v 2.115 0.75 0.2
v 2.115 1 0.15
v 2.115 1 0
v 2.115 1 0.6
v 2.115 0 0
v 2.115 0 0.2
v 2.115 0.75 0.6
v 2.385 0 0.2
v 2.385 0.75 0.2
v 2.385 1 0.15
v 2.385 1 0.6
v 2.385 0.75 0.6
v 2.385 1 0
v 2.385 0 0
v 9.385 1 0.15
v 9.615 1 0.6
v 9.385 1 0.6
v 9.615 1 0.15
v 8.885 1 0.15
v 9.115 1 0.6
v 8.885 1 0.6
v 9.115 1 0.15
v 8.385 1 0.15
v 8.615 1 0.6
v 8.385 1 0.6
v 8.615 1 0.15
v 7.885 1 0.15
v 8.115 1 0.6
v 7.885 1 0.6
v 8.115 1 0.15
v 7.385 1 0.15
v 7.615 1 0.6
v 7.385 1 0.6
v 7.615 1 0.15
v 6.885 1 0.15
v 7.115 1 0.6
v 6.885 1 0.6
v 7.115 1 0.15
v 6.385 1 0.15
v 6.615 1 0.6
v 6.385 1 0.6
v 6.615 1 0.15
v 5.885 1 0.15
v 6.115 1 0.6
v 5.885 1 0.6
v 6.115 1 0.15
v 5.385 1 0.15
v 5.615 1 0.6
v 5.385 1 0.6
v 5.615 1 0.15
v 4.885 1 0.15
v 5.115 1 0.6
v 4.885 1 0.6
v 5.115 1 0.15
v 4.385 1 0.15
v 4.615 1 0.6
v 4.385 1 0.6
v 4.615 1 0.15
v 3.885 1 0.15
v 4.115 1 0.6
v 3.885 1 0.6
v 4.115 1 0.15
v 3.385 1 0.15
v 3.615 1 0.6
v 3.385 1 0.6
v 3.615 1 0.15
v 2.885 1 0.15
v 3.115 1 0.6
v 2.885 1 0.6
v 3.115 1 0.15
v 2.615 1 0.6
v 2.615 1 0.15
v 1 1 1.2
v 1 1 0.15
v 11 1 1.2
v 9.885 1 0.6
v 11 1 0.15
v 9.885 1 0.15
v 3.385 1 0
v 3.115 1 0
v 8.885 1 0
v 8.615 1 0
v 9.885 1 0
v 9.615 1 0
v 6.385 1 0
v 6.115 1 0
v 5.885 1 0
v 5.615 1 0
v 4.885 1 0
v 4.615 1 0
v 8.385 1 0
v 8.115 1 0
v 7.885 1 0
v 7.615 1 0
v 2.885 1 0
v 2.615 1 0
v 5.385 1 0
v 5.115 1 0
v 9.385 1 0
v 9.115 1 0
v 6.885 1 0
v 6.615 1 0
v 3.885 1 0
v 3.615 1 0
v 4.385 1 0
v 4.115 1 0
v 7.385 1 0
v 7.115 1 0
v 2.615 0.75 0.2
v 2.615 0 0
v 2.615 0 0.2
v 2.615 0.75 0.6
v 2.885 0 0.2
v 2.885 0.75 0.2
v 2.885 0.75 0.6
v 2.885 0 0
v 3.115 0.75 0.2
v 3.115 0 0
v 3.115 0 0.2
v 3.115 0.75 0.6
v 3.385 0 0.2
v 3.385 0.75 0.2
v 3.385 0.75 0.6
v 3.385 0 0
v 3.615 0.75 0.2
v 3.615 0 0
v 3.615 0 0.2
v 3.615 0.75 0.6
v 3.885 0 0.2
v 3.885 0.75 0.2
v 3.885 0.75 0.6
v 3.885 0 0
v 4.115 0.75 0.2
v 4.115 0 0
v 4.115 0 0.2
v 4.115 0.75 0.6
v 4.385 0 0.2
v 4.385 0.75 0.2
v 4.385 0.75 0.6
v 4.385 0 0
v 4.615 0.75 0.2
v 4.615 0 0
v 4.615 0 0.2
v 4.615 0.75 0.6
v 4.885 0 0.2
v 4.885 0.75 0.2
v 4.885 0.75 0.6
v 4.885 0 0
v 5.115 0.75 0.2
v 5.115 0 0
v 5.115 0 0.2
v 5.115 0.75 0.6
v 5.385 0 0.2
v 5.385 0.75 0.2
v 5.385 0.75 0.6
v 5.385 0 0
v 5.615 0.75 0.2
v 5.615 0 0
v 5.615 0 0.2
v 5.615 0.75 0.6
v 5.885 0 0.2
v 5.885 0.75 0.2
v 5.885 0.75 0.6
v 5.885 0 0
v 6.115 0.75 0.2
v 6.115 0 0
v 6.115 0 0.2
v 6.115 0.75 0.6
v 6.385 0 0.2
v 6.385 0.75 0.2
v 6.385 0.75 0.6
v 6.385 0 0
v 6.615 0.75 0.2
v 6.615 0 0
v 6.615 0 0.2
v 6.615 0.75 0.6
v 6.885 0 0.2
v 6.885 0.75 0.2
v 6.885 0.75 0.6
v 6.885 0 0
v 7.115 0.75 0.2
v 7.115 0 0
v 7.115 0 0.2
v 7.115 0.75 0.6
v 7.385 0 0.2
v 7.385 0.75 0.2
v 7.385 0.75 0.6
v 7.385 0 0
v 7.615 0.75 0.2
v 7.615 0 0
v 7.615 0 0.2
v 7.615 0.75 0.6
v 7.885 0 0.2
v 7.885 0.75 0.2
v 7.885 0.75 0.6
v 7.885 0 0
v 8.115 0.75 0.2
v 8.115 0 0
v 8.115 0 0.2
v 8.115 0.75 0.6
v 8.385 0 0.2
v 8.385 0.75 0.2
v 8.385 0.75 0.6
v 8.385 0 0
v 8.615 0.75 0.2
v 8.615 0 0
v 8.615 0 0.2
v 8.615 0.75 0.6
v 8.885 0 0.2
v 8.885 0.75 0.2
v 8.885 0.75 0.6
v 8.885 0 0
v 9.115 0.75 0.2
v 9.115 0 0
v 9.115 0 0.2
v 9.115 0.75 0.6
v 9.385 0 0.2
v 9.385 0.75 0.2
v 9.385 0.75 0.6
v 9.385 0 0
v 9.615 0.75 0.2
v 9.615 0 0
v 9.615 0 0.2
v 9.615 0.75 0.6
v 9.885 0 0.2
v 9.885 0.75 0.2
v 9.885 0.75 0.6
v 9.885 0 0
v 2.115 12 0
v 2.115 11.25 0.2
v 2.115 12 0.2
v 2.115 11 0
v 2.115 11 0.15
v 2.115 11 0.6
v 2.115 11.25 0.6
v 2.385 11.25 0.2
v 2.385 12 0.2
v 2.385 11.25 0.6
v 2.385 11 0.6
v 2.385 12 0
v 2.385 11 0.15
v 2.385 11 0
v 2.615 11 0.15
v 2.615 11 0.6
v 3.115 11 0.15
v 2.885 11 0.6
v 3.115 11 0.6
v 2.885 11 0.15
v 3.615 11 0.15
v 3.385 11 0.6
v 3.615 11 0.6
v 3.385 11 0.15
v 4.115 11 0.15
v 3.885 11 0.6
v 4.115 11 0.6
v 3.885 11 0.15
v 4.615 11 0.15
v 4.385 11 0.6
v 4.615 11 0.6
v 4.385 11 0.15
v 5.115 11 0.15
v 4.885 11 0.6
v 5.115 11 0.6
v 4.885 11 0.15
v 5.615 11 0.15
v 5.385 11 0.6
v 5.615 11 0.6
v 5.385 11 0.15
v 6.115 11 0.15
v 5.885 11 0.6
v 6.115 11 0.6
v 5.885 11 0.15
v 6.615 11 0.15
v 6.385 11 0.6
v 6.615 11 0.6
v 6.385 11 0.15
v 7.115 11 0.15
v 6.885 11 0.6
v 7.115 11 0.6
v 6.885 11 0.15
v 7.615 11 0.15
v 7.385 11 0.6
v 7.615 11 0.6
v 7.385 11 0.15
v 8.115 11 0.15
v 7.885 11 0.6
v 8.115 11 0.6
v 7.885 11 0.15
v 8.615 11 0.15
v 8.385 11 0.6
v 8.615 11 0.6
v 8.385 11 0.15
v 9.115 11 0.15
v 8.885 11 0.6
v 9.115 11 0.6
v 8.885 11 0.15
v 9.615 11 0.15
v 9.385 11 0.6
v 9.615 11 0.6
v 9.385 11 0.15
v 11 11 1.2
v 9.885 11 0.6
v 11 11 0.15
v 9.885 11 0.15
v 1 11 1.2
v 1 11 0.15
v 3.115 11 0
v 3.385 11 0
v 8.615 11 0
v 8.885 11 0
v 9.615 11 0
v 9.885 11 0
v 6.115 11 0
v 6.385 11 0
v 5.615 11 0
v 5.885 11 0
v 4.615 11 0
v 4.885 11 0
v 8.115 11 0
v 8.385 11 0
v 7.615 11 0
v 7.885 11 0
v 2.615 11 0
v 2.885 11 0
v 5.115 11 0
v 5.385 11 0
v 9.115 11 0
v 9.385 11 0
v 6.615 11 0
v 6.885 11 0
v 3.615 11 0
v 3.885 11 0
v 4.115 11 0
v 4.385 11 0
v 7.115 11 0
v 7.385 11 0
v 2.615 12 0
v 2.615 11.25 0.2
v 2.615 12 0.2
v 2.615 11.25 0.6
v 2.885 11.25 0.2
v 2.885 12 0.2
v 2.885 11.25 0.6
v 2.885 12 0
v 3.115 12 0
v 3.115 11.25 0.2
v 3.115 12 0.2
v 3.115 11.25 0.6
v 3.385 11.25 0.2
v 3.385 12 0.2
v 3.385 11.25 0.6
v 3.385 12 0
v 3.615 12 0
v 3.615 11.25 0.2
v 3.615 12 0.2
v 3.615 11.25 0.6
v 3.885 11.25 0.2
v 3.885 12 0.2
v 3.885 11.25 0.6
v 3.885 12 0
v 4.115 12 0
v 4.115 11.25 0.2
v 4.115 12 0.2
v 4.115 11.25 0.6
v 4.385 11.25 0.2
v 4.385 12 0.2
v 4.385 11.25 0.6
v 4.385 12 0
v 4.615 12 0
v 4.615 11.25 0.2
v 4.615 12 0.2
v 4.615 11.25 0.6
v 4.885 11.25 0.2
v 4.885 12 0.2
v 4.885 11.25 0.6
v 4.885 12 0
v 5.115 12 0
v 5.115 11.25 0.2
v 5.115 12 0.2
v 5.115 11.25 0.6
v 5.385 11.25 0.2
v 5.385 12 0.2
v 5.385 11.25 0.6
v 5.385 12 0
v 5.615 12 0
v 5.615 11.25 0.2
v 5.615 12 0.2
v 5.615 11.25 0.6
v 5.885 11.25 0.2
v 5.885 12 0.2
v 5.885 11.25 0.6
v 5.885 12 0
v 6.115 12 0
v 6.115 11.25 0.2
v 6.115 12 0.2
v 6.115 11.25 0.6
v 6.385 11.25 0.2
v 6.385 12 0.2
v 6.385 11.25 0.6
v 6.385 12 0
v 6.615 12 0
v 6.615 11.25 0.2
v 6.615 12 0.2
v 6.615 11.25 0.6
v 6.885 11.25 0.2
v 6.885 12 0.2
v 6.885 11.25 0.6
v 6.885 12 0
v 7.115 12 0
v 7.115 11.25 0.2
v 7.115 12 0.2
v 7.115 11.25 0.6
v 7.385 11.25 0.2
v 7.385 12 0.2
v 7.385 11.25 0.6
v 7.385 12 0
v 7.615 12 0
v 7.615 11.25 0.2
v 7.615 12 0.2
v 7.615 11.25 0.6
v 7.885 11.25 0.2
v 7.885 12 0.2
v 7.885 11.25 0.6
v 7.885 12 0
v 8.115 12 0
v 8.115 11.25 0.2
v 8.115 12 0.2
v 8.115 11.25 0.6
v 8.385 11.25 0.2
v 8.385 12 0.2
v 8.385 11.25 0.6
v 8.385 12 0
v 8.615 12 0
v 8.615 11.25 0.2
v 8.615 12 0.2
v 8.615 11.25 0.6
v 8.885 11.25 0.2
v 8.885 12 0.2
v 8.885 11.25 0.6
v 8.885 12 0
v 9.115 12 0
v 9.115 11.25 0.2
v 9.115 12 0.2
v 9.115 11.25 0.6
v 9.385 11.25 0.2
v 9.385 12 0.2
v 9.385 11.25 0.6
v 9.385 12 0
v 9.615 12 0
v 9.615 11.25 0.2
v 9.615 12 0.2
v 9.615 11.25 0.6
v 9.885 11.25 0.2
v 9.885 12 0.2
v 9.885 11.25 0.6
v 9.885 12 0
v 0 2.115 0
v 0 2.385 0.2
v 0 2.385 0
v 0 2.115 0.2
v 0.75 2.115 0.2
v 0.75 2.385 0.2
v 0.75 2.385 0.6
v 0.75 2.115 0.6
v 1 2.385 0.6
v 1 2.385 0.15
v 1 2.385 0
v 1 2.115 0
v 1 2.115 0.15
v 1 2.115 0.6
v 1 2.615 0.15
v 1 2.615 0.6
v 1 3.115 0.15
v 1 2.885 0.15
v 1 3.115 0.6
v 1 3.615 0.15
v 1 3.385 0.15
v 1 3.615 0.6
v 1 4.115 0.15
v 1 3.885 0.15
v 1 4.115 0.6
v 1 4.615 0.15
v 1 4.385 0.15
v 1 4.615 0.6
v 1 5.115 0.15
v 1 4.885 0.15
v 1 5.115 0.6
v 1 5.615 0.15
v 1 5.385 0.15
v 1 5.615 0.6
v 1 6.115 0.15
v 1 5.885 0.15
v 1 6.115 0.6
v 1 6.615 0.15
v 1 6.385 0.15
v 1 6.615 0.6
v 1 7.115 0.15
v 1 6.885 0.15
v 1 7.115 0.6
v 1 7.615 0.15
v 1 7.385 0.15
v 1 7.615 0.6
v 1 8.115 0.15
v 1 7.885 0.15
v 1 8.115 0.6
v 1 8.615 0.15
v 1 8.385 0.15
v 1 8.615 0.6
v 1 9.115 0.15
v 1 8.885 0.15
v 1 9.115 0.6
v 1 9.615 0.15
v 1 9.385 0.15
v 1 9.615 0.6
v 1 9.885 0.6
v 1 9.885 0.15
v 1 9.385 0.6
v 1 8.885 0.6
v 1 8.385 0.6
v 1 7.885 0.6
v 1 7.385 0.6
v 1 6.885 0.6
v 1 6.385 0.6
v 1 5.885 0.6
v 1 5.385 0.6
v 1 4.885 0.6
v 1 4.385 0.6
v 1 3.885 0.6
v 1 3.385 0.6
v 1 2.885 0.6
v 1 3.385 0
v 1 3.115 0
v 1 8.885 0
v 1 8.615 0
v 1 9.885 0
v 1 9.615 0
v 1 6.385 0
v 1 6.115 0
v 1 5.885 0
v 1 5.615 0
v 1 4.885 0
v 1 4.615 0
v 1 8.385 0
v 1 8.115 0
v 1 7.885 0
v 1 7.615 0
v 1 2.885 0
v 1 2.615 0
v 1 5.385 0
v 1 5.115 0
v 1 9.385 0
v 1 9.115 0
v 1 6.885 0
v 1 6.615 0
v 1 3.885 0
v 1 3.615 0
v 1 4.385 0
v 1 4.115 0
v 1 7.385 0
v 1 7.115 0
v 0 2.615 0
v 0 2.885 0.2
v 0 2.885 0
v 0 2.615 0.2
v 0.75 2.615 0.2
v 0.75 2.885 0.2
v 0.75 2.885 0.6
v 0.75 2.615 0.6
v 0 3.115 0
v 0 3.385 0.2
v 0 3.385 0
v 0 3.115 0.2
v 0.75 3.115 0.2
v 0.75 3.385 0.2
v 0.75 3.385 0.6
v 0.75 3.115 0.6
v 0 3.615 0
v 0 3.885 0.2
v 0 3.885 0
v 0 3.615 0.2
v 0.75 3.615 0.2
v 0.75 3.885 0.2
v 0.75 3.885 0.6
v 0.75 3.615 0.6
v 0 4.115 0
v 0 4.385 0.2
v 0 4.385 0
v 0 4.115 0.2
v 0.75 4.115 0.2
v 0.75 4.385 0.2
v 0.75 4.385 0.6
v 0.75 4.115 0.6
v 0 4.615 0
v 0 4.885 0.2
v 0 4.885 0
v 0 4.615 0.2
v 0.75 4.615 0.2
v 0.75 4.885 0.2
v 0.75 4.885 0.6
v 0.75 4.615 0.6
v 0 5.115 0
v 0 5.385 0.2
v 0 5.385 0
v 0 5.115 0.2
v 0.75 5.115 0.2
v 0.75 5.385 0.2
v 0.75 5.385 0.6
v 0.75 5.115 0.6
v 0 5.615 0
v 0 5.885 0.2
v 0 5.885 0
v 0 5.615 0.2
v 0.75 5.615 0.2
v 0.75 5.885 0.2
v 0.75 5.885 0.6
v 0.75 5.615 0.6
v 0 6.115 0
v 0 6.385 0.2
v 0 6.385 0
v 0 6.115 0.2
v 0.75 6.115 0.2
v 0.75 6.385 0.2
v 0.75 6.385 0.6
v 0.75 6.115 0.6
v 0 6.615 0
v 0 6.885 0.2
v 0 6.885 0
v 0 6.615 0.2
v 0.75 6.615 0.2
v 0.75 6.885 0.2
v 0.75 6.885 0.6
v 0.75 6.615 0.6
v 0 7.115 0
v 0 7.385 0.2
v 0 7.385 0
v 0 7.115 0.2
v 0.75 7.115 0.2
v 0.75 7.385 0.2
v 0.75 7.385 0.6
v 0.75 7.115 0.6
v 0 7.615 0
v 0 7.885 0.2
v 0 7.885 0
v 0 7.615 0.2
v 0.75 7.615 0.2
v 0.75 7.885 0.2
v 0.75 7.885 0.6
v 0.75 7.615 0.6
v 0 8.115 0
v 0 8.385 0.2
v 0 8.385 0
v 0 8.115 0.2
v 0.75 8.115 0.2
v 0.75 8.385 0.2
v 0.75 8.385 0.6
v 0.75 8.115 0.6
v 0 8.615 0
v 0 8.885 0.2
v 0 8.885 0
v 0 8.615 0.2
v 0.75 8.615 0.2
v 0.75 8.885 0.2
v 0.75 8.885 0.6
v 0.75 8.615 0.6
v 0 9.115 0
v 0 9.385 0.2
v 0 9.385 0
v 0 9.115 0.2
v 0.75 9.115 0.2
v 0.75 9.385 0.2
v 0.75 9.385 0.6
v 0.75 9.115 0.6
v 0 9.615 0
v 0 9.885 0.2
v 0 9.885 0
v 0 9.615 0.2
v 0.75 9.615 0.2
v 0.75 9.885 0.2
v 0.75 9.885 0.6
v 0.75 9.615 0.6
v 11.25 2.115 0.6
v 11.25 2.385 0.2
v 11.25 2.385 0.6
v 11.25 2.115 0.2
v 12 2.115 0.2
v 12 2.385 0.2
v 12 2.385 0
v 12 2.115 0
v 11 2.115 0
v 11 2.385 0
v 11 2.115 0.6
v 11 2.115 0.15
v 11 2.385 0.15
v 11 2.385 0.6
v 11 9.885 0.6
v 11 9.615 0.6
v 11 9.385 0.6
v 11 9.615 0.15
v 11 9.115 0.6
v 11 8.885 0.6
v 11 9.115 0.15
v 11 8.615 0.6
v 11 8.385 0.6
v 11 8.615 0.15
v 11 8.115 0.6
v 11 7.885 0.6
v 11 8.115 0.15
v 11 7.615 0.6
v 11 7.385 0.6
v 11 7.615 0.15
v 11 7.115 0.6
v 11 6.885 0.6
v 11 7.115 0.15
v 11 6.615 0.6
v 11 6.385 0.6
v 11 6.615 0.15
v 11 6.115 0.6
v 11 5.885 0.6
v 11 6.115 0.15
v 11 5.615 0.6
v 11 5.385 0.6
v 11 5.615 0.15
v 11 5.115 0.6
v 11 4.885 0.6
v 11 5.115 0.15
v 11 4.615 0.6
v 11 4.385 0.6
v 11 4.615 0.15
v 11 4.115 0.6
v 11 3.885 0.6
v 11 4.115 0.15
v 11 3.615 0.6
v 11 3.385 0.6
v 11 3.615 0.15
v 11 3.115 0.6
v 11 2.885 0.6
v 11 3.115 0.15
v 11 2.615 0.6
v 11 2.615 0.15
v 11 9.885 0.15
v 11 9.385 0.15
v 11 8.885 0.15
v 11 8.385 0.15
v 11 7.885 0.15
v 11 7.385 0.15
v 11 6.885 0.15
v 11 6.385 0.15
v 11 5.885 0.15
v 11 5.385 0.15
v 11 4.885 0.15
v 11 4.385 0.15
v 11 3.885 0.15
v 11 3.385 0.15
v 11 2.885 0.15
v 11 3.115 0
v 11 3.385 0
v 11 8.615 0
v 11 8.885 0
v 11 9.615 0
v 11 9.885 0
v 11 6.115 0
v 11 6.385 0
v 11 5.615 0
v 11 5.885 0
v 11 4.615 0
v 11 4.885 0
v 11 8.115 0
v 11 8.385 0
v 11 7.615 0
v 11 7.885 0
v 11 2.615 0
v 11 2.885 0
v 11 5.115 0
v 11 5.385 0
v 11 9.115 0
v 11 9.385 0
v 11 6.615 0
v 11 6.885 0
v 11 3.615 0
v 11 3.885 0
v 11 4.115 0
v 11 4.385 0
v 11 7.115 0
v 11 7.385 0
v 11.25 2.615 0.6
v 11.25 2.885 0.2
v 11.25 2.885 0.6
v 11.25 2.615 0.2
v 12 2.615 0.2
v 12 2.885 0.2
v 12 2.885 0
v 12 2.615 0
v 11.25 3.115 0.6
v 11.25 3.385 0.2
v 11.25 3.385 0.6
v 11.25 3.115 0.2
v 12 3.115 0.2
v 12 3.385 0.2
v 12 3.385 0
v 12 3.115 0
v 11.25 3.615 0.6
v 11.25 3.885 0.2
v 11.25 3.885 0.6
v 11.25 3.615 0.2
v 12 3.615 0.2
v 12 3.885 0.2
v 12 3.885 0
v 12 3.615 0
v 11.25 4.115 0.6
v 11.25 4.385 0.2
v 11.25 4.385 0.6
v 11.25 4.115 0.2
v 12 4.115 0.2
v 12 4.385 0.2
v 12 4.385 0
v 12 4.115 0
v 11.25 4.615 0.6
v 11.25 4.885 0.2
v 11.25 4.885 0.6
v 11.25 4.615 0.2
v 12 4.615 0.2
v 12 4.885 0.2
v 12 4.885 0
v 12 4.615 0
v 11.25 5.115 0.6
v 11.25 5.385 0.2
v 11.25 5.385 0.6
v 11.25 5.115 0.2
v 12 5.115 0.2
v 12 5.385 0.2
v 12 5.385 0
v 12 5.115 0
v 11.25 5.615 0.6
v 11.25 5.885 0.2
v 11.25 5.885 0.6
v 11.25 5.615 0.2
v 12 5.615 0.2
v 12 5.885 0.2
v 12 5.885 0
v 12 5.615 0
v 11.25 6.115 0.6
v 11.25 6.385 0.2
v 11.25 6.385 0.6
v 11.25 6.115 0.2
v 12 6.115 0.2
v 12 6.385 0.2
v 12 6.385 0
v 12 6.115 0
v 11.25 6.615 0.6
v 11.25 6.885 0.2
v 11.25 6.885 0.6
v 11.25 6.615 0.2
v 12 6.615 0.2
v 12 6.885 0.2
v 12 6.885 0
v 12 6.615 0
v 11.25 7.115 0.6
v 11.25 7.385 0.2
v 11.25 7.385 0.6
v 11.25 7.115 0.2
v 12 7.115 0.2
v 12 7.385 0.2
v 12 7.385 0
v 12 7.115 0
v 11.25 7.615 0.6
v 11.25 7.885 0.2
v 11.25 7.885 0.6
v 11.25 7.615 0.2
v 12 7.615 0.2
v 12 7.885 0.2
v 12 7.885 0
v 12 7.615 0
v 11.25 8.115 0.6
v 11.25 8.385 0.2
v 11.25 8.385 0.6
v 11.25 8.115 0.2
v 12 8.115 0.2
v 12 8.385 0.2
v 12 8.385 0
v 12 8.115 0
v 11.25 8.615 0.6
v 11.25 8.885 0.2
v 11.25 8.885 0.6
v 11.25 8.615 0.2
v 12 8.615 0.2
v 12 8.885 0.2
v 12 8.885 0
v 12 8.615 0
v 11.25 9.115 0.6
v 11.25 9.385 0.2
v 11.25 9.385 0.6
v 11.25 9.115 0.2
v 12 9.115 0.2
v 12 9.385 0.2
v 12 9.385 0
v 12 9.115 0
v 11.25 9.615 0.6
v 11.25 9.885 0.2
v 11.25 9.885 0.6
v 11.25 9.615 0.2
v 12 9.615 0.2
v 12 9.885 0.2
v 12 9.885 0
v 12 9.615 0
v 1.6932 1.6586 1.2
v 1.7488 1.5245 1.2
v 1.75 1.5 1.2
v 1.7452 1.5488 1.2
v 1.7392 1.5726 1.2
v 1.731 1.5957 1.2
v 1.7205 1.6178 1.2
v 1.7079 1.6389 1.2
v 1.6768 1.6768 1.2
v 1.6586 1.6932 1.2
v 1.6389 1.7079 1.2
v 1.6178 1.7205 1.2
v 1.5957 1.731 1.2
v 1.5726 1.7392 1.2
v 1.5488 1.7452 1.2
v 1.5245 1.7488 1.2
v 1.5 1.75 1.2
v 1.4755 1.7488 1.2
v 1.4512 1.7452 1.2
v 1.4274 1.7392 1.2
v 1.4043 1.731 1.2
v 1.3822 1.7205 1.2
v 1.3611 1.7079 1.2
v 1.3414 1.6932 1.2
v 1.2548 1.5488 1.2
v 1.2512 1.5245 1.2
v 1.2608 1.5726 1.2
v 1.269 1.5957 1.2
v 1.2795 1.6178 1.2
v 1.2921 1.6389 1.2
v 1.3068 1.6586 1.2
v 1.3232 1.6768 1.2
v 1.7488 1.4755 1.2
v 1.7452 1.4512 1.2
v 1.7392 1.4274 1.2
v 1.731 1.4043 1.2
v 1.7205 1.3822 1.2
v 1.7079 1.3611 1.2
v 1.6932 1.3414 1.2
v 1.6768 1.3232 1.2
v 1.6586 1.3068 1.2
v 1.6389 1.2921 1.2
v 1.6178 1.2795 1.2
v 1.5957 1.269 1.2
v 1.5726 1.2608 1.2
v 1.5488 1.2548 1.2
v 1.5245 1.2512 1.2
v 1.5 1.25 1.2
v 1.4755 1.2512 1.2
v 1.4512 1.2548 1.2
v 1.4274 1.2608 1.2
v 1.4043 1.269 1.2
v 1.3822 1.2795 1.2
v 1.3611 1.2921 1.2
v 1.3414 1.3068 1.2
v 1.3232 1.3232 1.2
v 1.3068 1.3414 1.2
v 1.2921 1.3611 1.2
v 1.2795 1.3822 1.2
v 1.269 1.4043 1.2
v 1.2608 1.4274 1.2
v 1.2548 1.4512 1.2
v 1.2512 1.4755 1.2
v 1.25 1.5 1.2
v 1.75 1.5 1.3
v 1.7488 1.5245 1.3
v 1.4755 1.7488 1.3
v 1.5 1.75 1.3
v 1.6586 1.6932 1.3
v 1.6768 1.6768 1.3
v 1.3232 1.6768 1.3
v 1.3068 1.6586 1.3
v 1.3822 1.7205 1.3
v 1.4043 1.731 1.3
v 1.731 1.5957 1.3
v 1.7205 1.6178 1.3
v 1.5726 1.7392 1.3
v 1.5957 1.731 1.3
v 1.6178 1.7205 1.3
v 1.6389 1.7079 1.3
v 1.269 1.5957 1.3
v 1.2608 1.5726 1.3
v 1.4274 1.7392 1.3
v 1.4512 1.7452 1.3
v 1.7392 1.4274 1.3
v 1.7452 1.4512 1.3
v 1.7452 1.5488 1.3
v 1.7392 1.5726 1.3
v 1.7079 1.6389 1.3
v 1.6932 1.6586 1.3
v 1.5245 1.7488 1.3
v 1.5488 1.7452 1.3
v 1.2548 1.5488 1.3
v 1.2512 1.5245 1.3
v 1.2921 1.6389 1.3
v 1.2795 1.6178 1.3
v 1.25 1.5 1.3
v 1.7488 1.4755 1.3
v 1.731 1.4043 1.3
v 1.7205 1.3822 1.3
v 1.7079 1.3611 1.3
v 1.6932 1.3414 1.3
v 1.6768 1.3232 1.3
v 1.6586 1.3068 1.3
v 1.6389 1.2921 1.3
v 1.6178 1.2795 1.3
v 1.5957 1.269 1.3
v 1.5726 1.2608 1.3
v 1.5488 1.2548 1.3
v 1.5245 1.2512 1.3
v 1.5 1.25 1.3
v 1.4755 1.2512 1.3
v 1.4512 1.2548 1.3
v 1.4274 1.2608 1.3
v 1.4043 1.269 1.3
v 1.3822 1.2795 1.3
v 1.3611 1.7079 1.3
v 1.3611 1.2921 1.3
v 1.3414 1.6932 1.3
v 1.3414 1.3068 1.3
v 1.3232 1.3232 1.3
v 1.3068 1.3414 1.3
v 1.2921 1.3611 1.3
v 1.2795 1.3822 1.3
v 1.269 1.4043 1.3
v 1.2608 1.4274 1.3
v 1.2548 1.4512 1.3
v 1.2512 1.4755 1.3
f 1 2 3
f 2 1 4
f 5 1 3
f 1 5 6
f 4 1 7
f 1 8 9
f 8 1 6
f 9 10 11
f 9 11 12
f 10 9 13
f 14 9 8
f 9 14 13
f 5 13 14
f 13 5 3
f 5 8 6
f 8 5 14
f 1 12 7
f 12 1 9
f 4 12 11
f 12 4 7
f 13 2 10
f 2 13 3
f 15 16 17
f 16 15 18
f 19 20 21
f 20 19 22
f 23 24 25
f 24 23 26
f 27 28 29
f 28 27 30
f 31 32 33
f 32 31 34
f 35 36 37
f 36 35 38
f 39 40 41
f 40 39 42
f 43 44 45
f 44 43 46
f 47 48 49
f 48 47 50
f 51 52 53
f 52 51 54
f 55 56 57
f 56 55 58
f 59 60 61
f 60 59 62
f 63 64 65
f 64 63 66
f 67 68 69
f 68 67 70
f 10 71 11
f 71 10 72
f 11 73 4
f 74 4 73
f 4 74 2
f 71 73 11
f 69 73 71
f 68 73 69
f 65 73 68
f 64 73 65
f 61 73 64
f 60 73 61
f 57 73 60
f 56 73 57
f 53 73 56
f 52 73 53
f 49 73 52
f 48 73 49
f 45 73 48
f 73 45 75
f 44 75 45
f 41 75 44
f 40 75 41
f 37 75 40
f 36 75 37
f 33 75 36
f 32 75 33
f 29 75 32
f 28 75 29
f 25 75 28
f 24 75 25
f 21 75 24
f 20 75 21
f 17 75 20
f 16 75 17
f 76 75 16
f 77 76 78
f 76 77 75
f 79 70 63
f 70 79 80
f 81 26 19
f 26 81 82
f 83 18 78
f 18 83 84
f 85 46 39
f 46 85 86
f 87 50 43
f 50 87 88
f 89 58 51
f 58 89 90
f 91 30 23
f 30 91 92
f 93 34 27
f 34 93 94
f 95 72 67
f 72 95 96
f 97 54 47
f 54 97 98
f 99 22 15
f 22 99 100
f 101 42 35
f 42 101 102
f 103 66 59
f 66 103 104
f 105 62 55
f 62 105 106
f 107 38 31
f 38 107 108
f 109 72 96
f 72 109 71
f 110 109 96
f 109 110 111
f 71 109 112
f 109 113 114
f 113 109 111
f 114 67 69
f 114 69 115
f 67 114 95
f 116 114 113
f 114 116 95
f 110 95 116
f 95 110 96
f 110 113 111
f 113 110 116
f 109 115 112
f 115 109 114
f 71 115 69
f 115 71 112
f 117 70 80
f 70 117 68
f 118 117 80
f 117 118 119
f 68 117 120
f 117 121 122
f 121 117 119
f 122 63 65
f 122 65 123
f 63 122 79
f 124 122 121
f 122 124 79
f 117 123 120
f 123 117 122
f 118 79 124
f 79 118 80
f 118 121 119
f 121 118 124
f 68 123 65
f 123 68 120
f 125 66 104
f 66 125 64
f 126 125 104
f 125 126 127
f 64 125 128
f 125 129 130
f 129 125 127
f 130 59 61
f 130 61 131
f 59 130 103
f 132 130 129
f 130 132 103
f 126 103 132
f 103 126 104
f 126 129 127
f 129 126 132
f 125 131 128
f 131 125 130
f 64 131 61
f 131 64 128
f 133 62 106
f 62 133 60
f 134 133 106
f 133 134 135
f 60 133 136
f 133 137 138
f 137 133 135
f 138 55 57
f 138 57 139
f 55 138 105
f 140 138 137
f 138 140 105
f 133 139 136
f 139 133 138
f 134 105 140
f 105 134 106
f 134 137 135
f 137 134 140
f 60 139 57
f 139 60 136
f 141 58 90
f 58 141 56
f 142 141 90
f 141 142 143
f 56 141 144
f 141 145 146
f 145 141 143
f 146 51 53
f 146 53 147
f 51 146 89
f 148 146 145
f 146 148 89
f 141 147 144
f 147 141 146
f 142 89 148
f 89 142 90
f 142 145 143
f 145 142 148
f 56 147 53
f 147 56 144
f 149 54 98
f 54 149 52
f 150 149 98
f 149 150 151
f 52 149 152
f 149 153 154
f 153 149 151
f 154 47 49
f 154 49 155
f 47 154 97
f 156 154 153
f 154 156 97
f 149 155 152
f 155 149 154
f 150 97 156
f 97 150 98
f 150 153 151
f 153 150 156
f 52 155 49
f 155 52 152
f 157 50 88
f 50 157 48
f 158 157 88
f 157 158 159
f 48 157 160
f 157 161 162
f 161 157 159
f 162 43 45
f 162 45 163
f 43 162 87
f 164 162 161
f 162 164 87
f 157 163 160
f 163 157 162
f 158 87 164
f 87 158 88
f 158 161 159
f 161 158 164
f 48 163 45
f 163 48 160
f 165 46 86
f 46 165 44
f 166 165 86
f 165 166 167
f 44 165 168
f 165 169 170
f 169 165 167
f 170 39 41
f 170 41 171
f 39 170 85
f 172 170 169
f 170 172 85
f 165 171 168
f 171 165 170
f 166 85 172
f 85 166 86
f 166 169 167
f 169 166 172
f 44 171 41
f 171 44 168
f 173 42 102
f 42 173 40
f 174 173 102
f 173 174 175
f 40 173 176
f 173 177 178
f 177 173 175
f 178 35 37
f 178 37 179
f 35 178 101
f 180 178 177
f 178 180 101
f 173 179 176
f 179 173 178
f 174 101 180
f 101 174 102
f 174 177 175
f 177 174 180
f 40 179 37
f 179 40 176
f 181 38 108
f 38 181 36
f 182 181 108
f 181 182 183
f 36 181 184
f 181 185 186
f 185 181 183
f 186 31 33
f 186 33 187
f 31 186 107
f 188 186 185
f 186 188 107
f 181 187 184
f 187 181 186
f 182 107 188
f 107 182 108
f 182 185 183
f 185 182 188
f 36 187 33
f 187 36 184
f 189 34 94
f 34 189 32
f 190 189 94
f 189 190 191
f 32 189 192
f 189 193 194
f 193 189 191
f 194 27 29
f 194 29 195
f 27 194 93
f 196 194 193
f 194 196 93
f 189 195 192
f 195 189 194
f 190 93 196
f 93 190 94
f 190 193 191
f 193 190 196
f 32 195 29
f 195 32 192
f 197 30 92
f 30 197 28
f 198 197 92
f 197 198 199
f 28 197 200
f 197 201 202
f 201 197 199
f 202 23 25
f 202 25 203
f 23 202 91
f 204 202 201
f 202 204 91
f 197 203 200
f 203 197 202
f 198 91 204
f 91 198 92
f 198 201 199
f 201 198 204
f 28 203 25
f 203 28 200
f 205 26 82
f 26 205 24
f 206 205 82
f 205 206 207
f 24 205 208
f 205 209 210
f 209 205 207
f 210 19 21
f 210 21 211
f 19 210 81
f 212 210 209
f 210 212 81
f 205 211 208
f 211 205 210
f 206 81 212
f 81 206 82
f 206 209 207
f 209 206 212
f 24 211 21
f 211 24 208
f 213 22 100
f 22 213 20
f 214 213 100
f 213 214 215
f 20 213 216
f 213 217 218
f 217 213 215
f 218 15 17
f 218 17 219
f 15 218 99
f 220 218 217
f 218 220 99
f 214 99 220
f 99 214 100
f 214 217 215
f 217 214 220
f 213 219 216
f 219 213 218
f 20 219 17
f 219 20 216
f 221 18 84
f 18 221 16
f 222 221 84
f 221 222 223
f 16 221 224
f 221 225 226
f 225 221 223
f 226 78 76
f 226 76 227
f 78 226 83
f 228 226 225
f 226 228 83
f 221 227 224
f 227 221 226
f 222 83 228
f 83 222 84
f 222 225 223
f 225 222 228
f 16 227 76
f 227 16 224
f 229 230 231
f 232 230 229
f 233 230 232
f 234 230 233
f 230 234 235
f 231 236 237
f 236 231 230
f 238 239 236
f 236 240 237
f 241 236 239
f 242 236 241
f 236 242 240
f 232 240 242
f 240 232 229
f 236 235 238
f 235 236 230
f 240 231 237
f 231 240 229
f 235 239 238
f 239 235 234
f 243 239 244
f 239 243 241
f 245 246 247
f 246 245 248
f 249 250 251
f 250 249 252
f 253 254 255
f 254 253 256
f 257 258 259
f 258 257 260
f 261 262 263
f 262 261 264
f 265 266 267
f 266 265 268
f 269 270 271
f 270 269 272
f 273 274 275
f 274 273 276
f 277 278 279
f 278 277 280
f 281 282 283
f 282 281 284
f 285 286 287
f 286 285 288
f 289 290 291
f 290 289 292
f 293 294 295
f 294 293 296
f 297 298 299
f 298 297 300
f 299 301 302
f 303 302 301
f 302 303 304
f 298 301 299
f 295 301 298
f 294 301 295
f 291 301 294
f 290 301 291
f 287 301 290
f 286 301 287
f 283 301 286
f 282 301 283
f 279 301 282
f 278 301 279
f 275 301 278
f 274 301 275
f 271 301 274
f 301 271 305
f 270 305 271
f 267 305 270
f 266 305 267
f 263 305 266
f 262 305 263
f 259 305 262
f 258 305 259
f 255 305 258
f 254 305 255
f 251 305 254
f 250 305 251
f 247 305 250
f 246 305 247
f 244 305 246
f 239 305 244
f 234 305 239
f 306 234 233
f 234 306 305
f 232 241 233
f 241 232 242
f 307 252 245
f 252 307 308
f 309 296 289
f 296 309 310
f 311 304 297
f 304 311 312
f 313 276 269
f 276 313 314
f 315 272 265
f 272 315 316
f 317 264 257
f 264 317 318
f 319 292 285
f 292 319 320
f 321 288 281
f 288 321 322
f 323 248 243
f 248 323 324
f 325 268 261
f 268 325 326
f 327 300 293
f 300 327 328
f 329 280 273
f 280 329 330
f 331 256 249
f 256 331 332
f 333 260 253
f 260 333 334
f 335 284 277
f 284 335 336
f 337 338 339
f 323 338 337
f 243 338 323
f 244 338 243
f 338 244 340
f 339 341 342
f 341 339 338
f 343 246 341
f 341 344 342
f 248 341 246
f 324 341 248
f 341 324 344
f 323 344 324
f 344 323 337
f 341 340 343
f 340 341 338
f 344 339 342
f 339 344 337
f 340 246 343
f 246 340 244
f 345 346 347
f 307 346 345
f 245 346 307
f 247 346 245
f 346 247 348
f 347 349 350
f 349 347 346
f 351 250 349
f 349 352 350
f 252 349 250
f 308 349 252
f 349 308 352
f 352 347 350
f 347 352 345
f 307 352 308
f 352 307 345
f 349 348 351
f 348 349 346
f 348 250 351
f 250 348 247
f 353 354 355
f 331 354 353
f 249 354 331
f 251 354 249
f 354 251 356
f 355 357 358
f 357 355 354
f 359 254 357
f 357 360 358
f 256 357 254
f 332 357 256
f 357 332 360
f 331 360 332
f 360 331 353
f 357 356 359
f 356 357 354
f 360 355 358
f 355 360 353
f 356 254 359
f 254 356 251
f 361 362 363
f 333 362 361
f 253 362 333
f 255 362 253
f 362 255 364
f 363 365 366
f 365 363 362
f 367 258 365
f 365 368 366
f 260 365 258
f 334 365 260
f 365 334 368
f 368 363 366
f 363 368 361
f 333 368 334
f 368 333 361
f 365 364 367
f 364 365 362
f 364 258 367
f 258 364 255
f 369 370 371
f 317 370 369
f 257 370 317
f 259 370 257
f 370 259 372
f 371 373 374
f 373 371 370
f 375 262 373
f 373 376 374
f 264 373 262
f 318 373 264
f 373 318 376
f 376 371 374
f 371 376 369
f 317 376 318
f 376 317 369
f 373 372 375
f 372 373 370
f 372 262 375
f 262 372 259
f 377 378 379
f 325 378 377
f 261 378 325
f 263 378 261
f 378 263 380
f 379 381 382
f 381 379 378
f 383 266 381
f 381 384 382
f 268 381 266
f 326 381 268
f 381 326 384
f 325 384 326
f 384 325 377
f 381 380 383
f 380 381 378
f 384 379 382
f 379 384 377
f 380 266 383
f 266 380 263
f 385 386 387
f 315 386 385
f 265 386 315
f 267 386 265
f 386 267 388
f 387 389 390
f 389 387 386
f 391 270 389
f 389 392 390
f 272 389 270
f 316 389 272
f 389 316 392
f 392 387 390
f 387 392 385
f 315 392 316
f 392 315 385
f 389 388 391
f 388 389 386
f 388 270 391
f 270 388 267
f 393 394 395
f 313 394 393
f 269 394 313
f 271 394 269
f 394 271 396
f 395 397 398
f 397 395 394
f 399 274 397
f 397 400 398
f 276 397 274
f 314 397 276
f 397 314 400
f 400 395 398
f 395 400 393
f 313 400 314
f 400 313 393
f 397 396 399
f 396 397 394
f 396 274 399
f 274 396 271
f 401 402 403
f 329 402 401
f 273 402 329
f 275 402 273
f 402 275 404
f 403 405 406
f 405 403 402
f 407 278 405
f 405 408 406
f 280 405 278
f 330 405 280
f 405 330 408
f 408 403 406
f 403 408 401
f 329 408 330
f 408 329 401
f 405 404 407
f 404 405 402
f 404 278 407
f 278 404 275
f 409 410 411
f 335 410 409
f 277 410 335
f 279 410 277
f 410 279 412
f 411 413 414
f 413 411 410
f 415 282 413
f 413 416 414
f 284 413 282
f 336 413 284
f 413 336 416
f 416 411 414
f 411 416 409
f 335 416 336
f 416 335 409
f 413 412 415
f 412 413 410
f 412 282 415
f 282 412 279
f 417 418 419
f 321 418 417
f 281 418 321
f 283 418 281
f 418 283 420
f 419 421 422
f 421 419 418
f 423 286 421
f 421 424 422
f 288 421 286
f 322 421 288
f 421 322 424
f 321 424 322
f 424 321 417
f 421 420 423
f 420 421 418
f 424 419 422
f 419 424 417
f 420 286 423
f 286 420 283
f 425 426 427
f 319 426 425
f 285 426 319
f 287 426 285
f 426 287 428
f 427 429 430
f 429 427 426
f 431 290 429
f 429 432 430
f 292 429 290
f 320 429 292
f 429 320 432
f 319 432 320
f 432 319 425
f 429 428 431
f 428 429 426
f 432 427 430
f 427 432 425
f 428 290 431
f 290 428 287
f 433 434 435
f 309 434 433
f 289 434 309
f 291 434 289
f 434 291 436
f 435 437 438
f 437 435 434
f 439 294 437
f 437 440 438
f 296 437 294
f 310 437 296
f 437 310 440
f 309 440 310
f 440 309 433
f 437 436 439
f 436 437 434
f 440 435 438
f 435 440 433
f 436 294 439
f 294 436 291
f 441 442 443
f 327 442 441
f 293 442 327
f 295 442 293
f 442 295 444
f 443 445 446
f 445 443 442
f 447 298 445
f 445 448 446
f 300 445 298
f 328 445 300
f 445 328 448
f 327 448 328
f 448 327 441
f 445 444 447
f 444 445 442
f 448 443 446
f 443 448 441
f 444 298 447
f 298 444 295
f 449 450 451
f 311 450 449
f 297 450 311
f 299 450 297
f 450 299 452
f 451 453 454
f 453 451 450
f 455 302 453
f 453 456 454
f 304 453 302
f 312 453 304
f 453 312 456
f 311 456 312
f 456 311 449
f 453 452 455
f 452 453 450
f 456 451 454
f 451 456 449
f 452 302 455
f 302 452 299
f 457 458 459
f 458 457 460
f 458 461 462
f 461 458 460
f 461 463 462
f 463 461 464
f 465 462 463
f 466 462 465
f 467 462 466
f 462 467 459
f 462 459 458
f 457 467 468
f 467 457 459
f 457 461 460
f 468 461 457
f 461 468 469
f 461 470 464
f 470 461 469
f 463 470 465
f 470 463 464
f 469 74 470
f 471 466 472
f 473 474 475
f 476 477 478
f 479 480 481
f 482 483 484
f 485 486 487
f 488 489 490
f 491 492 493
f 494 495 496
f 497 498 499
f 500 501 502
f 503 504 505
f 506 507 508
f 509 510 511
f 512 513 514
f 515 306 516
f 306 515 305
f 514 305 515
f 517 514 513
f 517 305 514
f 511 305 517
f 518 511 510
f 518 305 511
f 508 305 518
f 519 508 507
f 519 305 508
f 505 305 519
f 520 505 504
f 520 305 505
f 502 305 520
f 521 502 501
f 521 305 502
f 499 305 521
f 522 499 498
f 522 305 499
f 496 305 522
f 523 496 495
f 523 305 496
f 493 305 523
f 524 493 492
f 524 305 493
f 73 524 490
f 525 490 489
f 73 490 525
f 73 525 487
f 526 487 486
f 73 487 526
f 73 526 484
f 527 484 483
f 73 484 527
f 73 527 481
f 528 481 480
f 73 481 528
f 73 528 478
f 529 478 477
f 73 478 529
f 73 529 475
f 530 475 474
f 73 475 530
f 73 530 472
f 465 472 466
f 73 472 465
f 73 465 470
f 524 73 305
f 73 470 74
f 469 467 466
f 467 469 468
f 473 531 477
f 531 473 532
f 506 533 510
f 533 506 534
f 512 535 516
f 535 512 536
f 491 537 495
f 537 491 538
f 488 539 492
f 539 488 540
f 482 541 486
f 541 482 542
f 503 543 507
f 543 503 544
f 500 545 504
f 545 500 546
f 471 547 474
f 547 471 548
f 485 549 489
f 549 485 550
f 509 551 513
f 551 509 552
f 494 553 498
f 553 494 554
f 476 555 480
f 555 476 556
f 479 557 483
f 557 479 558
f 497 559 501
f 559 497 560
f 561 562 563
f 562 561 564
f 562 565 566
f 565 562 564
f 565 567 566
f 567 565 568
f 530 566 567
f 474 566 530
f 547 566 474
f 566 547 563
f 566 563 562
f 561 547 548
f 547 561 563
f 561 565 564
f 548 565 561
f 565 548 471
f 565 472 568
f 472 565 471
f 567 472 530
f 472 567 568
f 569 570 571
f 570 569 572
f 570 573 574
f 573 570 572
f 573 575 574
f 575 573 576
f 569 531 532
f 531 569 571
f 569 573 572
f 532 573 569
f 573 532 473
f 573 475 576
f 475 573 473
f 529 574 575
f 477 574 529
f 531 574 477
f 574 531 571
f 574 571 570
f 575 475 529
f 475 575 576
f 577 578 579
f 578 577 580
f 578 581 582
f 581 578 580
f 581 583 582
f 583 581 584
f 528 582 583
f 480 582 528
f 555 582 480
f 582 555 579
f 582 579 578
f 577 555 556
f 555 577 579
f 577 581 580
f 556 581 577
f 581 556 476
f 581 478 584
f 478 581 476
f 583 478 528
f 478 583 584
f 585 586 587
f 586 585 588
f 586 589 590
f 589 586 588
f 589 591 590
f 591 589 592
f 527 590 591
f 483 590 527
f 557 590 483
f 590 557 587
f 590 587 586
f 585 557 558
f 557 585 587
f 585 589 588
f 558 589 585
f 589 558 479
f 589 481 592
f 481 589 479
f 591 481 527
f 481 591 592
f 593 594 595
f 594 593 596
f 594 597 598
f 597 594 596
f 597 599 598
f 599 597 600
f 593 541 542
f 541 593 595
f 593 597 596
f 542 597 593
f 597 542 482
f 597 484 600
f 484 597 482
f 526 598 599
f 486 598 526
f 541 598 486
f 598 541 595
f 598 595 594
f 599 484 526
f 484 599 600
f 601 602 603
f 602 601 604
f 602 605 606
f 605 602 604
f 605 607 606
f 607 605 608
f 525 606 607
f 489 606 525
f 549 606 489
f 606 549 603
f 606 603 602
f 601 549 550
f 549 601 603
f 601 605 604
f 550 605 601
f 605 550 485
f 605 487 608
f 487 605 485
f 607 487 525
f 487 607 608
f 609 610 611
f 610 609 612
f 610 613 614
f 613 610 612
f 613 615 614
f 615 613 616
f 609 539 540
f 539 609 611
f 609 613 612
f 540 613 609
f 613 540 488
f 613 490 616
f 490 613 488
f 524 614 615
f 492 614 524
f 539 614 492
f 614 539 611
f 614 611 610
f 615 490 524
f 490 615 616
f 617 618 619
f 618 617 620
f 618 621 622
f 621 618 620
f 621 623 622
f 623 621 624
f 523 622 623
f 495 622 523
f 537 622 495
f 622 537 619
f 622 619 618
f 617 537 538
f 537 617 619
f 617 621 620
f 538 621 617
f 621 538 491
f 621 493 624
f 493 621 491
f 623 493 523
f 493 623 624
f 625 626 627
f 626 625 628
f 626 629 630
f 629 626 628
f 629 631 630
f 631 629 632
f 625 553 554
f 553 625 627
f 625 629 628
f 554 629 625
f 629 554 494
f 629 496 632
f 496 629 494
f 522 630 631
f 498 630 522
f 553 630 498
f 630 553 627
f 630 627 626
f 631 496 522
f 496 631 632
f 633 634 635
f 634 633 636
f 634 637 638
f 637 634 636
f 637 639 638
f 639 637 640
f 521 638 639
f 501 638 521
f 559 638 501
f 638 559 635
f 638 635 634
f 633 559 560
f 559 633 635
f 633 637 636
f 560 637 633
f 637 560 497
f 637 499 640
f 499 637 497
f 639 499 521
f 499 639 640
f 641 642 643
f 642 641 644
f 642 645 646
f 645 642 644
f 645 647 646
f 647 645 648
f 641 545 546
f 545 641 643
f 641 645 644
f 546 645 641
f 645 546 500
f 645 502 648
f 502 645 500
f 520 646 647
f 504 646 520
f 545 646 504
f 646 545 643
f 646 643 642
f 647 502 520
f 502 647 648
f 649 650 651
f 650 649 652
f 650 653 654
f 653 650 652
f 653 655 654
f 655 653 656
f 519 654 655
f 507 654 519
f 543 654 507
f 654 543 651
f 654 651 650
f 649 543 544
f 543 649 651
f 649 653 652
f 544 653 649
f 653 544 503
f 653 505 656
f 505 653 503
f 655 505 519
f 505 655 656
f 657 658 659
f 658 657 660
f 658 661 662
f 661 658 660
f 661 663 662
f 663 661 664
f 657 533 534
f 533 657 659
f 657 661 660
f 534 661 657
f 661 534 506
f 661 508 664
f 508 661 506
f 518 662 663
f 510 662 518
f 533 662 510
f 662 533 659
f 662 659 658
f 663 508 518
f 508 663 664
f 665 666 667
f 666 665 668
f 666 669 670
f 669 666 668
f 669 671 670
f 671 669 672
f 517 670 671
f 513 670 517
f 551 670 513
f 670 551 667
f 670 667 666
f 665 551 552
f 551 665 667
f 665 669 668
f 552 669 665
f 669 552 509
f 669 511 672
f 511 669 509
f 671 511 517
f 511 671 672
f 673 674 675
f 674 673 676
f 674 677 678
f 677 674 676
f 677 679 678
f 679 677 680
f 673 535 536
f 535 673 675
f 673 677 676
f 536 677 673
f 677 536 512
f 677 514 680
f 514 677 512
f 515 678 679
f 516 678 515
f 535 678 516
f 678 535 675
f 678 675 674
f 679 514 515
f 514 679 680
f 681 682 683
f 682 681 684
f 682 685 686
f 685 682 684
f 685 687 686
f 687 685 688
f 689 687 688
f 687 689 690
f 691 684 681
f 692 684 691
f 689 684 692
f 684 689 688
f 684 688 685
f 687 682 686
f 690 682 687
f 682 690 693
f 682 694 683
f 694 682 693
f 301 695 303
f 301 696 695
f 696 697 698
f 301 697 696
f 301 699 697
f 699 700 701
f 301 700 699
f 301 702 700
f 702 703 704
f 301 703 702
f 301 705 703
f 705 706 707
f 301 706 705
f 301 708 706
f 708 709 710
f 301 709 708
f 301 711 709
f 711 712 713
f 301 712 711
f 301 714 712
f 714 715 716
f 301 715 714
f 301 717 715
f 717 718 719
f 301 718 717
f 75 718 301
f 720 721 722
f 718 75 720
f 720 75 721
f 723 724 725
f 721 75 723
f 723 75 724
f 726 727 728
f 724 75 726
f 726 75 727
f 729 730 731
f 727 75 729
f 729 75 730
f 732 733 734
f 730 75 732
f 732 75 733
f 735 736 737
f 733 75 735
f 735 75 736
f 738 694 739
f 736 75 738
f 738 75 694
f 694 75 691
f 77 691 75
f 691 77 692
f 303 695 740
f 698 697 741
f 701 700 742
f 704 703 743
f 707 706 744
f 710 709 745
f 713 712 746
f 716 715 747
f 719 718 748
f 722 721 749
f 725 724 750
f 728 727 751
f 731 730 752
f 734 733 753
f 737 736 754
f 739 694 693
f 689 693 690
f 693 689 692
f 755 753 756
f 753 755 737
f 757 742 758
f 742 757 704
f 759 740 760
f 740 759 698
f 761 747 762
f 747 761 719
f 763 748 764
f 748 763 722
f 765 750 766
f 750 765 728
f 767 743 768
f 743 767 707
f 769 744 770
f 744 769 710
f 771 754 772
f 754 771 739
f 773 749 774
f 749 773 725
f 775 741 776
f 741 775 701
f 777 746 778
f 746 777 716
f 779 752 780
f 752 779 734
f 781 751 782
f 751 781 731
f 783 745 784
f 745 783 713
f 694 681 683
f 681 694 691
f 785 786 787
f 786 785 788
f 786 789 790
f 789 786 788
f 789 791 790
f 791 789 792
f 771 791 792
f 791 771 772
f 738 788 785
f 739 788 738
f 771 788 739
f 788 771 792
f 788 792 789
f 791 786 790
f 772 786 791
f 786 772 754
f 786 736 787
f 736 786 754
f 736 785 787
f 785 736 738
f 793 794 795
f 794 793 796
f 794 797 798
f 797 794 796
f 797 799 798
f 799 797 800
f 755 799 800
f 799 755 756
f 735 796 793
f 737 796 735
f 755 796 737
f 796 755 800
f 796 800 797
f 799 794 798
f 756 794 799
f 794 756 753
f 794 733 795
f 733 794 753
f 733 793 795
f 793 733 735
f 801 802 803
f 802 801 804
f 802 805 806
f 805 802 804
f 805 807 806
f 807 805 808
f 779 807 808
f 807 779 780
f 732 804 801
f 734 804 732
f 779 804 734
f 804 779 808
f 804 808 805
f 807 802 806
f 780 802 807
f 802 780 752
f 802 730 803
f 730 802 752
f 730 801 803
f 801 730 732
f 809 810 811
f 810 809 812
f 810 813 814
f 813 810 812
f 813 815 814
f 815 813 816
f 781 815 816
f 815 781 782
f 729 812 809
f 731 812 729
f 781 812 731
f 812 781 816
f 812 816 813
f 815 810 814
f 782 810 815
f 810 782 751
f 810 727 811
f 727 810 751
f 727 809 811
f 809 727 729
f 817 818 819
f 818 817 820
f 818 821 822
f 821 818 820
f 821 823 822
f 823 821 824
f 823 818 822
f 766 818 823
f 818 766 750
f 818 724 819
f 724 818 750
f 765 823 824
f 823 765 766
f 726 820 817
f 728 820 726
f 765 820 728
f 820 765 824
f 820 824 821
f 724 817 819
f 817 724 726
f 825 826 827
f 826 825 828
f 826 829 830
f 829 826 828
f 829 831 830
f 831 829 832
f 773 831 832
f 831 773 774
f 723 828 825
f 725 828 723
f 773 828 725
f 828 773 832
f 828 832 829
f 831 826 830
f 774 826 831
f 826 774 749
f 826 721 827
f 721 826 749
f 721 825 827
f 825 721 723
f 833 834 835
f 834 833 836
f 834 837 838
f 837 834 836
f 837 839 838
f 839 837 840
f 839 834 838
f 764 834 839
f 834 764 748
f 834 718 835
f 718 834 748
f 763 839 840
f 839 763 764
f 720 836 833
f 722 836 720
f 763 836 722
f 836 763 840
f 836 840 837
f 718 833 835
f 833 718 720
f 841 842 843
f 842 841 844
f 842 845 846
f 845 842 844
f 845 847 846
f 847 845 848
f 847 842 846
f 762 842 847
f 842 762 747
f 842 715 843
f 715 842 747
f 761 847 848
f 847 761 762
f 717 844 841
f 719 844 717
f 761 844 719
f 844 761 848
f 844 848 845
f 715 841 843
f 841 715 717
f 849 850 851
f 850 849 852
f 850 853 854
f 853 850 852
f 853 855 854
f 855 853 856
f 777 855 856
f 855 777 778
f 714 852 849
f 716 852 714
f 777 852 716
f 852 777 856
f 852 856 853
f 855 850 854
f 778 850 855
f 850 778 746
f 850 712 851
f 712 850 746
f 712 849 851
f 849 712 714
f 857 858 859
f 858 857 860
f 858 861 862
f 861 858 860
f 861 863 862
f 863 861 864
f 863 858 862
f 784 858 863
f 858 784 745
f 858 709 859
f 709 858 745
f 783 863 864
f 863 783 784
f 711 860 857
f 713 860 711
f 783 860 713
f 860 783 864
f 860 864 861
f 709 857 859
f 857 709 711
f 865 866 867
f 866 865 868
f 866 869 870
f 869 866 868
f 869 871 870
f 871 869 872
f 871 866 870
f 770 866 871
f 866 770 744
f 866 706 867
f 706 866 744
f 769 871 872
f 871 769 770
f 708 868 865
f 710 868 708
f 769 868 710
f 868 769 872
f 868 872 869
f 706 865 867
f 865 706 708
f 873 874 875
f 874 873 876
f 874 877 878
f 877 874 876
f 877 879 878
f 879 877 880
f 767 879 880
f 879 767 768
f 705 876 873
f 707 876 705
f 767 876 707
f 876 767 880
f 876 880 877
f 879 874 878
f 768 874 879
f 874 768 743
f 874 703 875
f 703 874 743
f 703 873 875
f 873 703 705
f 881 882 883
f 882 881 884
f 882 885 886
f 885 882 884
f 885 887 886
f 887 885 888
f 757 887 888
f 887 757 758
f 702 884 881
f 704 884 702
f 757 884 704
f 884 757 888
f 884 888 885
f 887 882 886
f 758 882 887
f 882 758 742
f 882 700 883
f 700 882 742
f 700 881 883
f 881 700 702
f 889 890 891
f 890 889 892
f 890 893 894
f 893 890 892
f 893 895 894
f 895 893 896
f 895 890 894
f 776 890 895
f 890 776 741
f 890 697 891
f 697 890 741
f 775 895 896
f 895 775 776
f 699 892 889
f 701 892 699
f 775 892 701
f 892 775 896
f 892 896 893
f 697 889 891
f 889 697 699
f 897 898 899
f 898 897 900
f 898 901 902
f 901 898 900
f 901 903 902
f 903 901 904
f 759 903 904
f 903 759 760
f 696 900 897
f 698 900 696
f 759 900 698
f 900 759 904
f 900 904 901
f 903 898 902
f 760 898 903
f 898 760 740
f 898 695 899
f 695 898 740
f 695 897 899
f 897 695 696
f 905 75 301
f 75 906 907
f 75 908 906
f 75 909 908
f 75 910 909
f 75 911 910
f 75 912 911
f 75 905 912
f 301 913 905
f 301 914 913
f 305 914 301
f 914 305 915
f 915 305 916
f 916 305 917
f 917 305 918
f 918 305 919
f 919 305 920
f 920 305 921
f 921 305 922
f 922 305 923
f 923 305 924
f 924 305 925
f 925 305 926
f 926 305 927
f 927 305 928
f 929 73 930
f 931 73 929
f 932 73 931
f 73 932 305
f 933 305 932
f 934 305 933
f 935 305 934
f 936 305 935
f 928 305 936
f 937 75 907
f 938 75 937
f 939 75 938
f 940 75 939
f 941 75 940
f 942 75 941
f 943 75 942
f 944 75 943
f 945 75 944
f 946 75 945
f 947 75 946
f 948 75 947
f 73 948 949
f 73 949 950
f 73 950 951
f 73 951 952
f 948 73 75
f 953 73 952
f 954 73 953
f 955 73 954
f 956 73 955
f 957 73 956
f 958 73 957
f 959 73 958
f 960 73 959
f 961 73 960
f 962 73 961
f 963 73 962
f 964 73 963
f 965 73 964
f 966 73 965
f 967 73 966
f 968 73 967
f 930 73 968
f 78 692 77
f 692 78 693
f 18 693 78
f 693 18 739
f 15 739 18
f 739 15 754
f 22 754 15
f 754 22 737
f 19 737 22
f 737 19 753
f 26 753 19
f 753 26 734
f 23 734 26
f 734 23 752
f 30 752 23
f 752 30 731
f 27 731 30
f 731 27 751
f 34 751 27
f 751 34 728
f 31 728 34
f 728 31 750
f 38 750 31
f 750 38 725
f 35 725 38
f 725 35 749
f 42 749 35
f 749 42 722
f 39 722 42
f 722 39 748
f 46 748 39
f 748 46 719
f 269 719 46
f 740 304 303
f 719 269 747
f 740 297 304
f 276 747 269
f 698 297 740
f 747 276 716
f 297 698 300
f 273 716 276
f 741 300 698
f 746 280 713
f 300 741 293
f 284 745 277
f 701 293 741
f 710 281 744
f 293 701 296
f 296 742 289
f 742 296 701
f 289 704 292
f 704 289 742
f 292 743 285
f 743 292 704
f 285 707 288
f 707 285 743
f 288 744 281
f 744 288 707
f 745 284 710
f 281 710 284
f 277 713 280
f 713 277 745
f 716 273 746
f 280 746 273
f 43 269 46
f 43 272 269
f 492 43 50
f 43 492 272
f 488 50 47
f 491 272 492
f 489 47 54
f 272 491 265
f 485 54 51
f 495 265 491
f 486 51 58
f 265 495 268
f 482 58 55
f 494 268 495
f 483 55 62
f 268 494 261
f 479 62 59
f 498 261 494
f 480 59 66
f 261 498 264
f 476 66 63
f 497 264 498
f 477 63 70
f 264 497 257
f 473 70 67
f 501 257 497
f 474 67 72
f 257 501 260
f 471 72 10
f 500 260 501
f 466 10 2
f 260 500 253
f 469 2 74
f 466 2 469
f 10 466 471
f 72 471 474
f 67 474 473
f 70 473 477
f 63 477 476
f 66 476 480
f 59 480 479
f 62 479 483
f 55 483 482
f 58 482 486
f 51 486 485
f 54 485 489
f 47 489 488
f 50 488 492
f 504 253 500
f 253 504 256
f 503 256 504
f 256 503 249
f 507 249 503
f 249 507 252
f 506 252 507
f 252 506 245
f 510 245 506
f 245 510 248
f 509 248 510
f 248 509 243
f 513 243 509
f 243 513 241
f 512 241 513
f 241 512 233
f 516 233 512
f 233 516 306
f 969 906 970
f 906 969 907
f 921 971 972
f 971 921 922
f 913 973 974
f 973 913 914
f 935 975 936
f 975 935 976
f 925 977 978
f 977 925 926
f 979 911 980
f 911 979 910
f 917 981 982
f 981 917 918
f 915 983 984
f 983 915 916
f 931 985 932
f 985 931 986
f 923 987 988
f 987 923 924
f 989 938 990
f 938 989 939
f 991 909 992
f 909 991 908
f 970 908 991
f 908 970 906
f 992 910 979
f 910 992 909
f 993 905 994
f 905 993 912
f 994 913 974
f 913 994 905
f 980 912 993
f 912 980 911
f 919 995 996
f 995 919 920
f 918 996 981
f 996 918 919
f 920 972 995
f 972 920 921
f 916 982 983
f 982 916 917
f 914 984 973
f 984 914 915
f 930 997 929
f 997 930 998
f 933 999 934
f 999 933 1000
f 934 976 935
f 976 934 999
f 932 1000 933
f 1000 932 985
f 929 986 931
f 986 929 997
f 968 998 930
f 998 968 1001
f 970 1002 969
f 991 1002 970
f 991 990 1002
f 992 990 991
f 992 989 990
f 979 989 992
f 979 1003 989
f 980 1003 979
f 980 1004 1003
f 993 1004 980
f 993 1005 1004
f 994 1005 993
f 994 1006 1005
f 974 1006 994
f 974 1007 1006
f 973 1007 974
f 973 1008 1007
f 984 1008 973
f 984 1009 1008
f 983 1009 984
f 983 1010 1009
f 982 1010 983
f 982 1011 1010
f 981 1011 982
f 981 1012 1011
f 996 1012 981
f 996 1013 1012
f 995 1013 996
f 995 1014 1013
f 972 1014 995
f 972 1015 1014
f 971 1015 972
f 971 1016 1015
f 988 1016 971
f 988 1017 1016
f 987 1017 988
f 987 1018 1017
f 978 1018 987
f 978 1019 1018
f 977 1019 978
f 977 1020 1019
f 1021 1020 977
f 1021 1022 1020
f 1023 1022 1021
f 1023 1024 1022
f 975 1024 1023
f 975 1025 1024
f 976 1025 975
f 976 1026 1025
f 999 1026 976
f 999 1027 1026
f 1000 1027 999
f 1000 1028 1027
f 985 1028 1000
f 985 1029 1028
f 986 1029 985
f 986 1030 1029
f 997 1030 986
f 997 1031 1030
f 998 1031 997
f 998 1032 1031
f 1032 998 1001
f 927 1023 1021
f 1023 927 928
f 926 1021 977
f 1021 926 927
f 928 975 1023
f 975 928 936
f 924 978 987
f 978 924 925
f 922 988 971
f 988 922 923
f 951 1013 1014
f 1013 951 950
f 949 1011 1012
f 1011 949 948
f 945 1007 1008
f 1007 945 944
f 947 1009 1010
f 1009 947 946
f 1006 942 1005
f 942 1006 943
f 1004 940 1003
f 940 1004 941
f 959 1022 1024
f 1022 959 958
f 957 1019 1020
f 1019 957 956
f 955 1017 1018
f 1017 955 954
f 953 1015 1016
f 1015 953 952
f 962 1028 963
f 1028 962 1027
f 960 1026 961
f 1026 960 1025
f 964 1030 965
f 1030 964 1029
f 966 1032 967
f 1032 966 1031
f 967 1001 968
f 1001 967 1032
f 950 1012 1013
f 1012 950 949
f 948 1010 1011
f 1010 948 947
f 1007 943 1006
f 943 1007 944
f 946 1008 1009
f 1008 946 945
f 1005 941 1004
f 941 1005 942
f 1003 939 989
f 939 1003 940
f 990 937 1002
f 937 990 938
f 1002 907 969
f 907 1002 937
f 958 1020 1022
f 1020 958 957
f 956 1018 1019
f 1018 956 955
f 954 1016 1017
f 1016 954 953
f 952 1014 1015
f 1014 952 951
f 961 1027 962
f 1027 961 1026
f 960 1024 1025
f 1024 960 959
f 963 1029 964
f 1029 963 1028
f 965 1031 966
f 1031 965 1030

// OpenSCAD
/*64-Lead Plastic Thin Quad Flatpack - 12.0x12.0 mm Body [TQFP]

generated by com.zoubworld.electronics.cad.model3d.TQFP64
Date : Sun Jan 25 03:12:27 CET 2026
*/
E = 12.0 ;
b = 0.27 ;
A3 = 1.05 ;
e = 0.5 ;
A = 1.2 ;
D = 12.0 ;
A1 = 0.15 ;
L = 0.75 ;
D1 = 10.0 ;
L1 = 1.0 ;
N = 64.0 ;
E1 = 10.0 ;
c = 0.2 ;
$fn =64;

//body
color("black")
translate([D/2-D1/2,E/2-E1/2,A1])
cube([D1,E1,A-A1], center=false);

// pad
for (i = [-N/4/2 : 1 : N/4/2-1])
color("grey")
translate([D/2-b/2+e/2+e*i,0,0])
{
cube([b,L,c], center=false);
    translate([0,L,0])
cube([b,L1-L,A/2], center=false);
}
for (i = [-N/4/2 : 1 : N/4/2-1])
color("grey")
translate([D/2-b/2+e/2+e*i,E-L,0])
{cube([b,L,c], center=false);
    translate([0,-(L1-L),0])
cube([b,L1-L,A/2], center=false);
}

for (i = [-N/4/2 : 1 : N/4/2-1])
color("grey")
translate([0,E/2-b/2+e/2+e*i,0])
{cube([L,b,c], center=false);
    translate([L,0,0])
cube([L1-L,b,A/2], center=false);
}

for (i = [-N/4/2 : 1 : N/4/2-1])
color("grey")
translate([D-L,E/2-b/2+e/2+e*i,0])
{cube([L,b,c], center=false);
    translate([-(L1-L),0,0])
cube([L1-L,b,A/2], center=false);
}
/*
//expose pad
color("grey")
translate([D/2-D2/2,E/2-E2/2,0])
cube([D2,E2,A3], center=false);
*/
color("white")
translate([D/2-D1/2+0.5,E/2-E1/2+0.5,c])
cylinder(A-c/2,r=0.25,center=false);
